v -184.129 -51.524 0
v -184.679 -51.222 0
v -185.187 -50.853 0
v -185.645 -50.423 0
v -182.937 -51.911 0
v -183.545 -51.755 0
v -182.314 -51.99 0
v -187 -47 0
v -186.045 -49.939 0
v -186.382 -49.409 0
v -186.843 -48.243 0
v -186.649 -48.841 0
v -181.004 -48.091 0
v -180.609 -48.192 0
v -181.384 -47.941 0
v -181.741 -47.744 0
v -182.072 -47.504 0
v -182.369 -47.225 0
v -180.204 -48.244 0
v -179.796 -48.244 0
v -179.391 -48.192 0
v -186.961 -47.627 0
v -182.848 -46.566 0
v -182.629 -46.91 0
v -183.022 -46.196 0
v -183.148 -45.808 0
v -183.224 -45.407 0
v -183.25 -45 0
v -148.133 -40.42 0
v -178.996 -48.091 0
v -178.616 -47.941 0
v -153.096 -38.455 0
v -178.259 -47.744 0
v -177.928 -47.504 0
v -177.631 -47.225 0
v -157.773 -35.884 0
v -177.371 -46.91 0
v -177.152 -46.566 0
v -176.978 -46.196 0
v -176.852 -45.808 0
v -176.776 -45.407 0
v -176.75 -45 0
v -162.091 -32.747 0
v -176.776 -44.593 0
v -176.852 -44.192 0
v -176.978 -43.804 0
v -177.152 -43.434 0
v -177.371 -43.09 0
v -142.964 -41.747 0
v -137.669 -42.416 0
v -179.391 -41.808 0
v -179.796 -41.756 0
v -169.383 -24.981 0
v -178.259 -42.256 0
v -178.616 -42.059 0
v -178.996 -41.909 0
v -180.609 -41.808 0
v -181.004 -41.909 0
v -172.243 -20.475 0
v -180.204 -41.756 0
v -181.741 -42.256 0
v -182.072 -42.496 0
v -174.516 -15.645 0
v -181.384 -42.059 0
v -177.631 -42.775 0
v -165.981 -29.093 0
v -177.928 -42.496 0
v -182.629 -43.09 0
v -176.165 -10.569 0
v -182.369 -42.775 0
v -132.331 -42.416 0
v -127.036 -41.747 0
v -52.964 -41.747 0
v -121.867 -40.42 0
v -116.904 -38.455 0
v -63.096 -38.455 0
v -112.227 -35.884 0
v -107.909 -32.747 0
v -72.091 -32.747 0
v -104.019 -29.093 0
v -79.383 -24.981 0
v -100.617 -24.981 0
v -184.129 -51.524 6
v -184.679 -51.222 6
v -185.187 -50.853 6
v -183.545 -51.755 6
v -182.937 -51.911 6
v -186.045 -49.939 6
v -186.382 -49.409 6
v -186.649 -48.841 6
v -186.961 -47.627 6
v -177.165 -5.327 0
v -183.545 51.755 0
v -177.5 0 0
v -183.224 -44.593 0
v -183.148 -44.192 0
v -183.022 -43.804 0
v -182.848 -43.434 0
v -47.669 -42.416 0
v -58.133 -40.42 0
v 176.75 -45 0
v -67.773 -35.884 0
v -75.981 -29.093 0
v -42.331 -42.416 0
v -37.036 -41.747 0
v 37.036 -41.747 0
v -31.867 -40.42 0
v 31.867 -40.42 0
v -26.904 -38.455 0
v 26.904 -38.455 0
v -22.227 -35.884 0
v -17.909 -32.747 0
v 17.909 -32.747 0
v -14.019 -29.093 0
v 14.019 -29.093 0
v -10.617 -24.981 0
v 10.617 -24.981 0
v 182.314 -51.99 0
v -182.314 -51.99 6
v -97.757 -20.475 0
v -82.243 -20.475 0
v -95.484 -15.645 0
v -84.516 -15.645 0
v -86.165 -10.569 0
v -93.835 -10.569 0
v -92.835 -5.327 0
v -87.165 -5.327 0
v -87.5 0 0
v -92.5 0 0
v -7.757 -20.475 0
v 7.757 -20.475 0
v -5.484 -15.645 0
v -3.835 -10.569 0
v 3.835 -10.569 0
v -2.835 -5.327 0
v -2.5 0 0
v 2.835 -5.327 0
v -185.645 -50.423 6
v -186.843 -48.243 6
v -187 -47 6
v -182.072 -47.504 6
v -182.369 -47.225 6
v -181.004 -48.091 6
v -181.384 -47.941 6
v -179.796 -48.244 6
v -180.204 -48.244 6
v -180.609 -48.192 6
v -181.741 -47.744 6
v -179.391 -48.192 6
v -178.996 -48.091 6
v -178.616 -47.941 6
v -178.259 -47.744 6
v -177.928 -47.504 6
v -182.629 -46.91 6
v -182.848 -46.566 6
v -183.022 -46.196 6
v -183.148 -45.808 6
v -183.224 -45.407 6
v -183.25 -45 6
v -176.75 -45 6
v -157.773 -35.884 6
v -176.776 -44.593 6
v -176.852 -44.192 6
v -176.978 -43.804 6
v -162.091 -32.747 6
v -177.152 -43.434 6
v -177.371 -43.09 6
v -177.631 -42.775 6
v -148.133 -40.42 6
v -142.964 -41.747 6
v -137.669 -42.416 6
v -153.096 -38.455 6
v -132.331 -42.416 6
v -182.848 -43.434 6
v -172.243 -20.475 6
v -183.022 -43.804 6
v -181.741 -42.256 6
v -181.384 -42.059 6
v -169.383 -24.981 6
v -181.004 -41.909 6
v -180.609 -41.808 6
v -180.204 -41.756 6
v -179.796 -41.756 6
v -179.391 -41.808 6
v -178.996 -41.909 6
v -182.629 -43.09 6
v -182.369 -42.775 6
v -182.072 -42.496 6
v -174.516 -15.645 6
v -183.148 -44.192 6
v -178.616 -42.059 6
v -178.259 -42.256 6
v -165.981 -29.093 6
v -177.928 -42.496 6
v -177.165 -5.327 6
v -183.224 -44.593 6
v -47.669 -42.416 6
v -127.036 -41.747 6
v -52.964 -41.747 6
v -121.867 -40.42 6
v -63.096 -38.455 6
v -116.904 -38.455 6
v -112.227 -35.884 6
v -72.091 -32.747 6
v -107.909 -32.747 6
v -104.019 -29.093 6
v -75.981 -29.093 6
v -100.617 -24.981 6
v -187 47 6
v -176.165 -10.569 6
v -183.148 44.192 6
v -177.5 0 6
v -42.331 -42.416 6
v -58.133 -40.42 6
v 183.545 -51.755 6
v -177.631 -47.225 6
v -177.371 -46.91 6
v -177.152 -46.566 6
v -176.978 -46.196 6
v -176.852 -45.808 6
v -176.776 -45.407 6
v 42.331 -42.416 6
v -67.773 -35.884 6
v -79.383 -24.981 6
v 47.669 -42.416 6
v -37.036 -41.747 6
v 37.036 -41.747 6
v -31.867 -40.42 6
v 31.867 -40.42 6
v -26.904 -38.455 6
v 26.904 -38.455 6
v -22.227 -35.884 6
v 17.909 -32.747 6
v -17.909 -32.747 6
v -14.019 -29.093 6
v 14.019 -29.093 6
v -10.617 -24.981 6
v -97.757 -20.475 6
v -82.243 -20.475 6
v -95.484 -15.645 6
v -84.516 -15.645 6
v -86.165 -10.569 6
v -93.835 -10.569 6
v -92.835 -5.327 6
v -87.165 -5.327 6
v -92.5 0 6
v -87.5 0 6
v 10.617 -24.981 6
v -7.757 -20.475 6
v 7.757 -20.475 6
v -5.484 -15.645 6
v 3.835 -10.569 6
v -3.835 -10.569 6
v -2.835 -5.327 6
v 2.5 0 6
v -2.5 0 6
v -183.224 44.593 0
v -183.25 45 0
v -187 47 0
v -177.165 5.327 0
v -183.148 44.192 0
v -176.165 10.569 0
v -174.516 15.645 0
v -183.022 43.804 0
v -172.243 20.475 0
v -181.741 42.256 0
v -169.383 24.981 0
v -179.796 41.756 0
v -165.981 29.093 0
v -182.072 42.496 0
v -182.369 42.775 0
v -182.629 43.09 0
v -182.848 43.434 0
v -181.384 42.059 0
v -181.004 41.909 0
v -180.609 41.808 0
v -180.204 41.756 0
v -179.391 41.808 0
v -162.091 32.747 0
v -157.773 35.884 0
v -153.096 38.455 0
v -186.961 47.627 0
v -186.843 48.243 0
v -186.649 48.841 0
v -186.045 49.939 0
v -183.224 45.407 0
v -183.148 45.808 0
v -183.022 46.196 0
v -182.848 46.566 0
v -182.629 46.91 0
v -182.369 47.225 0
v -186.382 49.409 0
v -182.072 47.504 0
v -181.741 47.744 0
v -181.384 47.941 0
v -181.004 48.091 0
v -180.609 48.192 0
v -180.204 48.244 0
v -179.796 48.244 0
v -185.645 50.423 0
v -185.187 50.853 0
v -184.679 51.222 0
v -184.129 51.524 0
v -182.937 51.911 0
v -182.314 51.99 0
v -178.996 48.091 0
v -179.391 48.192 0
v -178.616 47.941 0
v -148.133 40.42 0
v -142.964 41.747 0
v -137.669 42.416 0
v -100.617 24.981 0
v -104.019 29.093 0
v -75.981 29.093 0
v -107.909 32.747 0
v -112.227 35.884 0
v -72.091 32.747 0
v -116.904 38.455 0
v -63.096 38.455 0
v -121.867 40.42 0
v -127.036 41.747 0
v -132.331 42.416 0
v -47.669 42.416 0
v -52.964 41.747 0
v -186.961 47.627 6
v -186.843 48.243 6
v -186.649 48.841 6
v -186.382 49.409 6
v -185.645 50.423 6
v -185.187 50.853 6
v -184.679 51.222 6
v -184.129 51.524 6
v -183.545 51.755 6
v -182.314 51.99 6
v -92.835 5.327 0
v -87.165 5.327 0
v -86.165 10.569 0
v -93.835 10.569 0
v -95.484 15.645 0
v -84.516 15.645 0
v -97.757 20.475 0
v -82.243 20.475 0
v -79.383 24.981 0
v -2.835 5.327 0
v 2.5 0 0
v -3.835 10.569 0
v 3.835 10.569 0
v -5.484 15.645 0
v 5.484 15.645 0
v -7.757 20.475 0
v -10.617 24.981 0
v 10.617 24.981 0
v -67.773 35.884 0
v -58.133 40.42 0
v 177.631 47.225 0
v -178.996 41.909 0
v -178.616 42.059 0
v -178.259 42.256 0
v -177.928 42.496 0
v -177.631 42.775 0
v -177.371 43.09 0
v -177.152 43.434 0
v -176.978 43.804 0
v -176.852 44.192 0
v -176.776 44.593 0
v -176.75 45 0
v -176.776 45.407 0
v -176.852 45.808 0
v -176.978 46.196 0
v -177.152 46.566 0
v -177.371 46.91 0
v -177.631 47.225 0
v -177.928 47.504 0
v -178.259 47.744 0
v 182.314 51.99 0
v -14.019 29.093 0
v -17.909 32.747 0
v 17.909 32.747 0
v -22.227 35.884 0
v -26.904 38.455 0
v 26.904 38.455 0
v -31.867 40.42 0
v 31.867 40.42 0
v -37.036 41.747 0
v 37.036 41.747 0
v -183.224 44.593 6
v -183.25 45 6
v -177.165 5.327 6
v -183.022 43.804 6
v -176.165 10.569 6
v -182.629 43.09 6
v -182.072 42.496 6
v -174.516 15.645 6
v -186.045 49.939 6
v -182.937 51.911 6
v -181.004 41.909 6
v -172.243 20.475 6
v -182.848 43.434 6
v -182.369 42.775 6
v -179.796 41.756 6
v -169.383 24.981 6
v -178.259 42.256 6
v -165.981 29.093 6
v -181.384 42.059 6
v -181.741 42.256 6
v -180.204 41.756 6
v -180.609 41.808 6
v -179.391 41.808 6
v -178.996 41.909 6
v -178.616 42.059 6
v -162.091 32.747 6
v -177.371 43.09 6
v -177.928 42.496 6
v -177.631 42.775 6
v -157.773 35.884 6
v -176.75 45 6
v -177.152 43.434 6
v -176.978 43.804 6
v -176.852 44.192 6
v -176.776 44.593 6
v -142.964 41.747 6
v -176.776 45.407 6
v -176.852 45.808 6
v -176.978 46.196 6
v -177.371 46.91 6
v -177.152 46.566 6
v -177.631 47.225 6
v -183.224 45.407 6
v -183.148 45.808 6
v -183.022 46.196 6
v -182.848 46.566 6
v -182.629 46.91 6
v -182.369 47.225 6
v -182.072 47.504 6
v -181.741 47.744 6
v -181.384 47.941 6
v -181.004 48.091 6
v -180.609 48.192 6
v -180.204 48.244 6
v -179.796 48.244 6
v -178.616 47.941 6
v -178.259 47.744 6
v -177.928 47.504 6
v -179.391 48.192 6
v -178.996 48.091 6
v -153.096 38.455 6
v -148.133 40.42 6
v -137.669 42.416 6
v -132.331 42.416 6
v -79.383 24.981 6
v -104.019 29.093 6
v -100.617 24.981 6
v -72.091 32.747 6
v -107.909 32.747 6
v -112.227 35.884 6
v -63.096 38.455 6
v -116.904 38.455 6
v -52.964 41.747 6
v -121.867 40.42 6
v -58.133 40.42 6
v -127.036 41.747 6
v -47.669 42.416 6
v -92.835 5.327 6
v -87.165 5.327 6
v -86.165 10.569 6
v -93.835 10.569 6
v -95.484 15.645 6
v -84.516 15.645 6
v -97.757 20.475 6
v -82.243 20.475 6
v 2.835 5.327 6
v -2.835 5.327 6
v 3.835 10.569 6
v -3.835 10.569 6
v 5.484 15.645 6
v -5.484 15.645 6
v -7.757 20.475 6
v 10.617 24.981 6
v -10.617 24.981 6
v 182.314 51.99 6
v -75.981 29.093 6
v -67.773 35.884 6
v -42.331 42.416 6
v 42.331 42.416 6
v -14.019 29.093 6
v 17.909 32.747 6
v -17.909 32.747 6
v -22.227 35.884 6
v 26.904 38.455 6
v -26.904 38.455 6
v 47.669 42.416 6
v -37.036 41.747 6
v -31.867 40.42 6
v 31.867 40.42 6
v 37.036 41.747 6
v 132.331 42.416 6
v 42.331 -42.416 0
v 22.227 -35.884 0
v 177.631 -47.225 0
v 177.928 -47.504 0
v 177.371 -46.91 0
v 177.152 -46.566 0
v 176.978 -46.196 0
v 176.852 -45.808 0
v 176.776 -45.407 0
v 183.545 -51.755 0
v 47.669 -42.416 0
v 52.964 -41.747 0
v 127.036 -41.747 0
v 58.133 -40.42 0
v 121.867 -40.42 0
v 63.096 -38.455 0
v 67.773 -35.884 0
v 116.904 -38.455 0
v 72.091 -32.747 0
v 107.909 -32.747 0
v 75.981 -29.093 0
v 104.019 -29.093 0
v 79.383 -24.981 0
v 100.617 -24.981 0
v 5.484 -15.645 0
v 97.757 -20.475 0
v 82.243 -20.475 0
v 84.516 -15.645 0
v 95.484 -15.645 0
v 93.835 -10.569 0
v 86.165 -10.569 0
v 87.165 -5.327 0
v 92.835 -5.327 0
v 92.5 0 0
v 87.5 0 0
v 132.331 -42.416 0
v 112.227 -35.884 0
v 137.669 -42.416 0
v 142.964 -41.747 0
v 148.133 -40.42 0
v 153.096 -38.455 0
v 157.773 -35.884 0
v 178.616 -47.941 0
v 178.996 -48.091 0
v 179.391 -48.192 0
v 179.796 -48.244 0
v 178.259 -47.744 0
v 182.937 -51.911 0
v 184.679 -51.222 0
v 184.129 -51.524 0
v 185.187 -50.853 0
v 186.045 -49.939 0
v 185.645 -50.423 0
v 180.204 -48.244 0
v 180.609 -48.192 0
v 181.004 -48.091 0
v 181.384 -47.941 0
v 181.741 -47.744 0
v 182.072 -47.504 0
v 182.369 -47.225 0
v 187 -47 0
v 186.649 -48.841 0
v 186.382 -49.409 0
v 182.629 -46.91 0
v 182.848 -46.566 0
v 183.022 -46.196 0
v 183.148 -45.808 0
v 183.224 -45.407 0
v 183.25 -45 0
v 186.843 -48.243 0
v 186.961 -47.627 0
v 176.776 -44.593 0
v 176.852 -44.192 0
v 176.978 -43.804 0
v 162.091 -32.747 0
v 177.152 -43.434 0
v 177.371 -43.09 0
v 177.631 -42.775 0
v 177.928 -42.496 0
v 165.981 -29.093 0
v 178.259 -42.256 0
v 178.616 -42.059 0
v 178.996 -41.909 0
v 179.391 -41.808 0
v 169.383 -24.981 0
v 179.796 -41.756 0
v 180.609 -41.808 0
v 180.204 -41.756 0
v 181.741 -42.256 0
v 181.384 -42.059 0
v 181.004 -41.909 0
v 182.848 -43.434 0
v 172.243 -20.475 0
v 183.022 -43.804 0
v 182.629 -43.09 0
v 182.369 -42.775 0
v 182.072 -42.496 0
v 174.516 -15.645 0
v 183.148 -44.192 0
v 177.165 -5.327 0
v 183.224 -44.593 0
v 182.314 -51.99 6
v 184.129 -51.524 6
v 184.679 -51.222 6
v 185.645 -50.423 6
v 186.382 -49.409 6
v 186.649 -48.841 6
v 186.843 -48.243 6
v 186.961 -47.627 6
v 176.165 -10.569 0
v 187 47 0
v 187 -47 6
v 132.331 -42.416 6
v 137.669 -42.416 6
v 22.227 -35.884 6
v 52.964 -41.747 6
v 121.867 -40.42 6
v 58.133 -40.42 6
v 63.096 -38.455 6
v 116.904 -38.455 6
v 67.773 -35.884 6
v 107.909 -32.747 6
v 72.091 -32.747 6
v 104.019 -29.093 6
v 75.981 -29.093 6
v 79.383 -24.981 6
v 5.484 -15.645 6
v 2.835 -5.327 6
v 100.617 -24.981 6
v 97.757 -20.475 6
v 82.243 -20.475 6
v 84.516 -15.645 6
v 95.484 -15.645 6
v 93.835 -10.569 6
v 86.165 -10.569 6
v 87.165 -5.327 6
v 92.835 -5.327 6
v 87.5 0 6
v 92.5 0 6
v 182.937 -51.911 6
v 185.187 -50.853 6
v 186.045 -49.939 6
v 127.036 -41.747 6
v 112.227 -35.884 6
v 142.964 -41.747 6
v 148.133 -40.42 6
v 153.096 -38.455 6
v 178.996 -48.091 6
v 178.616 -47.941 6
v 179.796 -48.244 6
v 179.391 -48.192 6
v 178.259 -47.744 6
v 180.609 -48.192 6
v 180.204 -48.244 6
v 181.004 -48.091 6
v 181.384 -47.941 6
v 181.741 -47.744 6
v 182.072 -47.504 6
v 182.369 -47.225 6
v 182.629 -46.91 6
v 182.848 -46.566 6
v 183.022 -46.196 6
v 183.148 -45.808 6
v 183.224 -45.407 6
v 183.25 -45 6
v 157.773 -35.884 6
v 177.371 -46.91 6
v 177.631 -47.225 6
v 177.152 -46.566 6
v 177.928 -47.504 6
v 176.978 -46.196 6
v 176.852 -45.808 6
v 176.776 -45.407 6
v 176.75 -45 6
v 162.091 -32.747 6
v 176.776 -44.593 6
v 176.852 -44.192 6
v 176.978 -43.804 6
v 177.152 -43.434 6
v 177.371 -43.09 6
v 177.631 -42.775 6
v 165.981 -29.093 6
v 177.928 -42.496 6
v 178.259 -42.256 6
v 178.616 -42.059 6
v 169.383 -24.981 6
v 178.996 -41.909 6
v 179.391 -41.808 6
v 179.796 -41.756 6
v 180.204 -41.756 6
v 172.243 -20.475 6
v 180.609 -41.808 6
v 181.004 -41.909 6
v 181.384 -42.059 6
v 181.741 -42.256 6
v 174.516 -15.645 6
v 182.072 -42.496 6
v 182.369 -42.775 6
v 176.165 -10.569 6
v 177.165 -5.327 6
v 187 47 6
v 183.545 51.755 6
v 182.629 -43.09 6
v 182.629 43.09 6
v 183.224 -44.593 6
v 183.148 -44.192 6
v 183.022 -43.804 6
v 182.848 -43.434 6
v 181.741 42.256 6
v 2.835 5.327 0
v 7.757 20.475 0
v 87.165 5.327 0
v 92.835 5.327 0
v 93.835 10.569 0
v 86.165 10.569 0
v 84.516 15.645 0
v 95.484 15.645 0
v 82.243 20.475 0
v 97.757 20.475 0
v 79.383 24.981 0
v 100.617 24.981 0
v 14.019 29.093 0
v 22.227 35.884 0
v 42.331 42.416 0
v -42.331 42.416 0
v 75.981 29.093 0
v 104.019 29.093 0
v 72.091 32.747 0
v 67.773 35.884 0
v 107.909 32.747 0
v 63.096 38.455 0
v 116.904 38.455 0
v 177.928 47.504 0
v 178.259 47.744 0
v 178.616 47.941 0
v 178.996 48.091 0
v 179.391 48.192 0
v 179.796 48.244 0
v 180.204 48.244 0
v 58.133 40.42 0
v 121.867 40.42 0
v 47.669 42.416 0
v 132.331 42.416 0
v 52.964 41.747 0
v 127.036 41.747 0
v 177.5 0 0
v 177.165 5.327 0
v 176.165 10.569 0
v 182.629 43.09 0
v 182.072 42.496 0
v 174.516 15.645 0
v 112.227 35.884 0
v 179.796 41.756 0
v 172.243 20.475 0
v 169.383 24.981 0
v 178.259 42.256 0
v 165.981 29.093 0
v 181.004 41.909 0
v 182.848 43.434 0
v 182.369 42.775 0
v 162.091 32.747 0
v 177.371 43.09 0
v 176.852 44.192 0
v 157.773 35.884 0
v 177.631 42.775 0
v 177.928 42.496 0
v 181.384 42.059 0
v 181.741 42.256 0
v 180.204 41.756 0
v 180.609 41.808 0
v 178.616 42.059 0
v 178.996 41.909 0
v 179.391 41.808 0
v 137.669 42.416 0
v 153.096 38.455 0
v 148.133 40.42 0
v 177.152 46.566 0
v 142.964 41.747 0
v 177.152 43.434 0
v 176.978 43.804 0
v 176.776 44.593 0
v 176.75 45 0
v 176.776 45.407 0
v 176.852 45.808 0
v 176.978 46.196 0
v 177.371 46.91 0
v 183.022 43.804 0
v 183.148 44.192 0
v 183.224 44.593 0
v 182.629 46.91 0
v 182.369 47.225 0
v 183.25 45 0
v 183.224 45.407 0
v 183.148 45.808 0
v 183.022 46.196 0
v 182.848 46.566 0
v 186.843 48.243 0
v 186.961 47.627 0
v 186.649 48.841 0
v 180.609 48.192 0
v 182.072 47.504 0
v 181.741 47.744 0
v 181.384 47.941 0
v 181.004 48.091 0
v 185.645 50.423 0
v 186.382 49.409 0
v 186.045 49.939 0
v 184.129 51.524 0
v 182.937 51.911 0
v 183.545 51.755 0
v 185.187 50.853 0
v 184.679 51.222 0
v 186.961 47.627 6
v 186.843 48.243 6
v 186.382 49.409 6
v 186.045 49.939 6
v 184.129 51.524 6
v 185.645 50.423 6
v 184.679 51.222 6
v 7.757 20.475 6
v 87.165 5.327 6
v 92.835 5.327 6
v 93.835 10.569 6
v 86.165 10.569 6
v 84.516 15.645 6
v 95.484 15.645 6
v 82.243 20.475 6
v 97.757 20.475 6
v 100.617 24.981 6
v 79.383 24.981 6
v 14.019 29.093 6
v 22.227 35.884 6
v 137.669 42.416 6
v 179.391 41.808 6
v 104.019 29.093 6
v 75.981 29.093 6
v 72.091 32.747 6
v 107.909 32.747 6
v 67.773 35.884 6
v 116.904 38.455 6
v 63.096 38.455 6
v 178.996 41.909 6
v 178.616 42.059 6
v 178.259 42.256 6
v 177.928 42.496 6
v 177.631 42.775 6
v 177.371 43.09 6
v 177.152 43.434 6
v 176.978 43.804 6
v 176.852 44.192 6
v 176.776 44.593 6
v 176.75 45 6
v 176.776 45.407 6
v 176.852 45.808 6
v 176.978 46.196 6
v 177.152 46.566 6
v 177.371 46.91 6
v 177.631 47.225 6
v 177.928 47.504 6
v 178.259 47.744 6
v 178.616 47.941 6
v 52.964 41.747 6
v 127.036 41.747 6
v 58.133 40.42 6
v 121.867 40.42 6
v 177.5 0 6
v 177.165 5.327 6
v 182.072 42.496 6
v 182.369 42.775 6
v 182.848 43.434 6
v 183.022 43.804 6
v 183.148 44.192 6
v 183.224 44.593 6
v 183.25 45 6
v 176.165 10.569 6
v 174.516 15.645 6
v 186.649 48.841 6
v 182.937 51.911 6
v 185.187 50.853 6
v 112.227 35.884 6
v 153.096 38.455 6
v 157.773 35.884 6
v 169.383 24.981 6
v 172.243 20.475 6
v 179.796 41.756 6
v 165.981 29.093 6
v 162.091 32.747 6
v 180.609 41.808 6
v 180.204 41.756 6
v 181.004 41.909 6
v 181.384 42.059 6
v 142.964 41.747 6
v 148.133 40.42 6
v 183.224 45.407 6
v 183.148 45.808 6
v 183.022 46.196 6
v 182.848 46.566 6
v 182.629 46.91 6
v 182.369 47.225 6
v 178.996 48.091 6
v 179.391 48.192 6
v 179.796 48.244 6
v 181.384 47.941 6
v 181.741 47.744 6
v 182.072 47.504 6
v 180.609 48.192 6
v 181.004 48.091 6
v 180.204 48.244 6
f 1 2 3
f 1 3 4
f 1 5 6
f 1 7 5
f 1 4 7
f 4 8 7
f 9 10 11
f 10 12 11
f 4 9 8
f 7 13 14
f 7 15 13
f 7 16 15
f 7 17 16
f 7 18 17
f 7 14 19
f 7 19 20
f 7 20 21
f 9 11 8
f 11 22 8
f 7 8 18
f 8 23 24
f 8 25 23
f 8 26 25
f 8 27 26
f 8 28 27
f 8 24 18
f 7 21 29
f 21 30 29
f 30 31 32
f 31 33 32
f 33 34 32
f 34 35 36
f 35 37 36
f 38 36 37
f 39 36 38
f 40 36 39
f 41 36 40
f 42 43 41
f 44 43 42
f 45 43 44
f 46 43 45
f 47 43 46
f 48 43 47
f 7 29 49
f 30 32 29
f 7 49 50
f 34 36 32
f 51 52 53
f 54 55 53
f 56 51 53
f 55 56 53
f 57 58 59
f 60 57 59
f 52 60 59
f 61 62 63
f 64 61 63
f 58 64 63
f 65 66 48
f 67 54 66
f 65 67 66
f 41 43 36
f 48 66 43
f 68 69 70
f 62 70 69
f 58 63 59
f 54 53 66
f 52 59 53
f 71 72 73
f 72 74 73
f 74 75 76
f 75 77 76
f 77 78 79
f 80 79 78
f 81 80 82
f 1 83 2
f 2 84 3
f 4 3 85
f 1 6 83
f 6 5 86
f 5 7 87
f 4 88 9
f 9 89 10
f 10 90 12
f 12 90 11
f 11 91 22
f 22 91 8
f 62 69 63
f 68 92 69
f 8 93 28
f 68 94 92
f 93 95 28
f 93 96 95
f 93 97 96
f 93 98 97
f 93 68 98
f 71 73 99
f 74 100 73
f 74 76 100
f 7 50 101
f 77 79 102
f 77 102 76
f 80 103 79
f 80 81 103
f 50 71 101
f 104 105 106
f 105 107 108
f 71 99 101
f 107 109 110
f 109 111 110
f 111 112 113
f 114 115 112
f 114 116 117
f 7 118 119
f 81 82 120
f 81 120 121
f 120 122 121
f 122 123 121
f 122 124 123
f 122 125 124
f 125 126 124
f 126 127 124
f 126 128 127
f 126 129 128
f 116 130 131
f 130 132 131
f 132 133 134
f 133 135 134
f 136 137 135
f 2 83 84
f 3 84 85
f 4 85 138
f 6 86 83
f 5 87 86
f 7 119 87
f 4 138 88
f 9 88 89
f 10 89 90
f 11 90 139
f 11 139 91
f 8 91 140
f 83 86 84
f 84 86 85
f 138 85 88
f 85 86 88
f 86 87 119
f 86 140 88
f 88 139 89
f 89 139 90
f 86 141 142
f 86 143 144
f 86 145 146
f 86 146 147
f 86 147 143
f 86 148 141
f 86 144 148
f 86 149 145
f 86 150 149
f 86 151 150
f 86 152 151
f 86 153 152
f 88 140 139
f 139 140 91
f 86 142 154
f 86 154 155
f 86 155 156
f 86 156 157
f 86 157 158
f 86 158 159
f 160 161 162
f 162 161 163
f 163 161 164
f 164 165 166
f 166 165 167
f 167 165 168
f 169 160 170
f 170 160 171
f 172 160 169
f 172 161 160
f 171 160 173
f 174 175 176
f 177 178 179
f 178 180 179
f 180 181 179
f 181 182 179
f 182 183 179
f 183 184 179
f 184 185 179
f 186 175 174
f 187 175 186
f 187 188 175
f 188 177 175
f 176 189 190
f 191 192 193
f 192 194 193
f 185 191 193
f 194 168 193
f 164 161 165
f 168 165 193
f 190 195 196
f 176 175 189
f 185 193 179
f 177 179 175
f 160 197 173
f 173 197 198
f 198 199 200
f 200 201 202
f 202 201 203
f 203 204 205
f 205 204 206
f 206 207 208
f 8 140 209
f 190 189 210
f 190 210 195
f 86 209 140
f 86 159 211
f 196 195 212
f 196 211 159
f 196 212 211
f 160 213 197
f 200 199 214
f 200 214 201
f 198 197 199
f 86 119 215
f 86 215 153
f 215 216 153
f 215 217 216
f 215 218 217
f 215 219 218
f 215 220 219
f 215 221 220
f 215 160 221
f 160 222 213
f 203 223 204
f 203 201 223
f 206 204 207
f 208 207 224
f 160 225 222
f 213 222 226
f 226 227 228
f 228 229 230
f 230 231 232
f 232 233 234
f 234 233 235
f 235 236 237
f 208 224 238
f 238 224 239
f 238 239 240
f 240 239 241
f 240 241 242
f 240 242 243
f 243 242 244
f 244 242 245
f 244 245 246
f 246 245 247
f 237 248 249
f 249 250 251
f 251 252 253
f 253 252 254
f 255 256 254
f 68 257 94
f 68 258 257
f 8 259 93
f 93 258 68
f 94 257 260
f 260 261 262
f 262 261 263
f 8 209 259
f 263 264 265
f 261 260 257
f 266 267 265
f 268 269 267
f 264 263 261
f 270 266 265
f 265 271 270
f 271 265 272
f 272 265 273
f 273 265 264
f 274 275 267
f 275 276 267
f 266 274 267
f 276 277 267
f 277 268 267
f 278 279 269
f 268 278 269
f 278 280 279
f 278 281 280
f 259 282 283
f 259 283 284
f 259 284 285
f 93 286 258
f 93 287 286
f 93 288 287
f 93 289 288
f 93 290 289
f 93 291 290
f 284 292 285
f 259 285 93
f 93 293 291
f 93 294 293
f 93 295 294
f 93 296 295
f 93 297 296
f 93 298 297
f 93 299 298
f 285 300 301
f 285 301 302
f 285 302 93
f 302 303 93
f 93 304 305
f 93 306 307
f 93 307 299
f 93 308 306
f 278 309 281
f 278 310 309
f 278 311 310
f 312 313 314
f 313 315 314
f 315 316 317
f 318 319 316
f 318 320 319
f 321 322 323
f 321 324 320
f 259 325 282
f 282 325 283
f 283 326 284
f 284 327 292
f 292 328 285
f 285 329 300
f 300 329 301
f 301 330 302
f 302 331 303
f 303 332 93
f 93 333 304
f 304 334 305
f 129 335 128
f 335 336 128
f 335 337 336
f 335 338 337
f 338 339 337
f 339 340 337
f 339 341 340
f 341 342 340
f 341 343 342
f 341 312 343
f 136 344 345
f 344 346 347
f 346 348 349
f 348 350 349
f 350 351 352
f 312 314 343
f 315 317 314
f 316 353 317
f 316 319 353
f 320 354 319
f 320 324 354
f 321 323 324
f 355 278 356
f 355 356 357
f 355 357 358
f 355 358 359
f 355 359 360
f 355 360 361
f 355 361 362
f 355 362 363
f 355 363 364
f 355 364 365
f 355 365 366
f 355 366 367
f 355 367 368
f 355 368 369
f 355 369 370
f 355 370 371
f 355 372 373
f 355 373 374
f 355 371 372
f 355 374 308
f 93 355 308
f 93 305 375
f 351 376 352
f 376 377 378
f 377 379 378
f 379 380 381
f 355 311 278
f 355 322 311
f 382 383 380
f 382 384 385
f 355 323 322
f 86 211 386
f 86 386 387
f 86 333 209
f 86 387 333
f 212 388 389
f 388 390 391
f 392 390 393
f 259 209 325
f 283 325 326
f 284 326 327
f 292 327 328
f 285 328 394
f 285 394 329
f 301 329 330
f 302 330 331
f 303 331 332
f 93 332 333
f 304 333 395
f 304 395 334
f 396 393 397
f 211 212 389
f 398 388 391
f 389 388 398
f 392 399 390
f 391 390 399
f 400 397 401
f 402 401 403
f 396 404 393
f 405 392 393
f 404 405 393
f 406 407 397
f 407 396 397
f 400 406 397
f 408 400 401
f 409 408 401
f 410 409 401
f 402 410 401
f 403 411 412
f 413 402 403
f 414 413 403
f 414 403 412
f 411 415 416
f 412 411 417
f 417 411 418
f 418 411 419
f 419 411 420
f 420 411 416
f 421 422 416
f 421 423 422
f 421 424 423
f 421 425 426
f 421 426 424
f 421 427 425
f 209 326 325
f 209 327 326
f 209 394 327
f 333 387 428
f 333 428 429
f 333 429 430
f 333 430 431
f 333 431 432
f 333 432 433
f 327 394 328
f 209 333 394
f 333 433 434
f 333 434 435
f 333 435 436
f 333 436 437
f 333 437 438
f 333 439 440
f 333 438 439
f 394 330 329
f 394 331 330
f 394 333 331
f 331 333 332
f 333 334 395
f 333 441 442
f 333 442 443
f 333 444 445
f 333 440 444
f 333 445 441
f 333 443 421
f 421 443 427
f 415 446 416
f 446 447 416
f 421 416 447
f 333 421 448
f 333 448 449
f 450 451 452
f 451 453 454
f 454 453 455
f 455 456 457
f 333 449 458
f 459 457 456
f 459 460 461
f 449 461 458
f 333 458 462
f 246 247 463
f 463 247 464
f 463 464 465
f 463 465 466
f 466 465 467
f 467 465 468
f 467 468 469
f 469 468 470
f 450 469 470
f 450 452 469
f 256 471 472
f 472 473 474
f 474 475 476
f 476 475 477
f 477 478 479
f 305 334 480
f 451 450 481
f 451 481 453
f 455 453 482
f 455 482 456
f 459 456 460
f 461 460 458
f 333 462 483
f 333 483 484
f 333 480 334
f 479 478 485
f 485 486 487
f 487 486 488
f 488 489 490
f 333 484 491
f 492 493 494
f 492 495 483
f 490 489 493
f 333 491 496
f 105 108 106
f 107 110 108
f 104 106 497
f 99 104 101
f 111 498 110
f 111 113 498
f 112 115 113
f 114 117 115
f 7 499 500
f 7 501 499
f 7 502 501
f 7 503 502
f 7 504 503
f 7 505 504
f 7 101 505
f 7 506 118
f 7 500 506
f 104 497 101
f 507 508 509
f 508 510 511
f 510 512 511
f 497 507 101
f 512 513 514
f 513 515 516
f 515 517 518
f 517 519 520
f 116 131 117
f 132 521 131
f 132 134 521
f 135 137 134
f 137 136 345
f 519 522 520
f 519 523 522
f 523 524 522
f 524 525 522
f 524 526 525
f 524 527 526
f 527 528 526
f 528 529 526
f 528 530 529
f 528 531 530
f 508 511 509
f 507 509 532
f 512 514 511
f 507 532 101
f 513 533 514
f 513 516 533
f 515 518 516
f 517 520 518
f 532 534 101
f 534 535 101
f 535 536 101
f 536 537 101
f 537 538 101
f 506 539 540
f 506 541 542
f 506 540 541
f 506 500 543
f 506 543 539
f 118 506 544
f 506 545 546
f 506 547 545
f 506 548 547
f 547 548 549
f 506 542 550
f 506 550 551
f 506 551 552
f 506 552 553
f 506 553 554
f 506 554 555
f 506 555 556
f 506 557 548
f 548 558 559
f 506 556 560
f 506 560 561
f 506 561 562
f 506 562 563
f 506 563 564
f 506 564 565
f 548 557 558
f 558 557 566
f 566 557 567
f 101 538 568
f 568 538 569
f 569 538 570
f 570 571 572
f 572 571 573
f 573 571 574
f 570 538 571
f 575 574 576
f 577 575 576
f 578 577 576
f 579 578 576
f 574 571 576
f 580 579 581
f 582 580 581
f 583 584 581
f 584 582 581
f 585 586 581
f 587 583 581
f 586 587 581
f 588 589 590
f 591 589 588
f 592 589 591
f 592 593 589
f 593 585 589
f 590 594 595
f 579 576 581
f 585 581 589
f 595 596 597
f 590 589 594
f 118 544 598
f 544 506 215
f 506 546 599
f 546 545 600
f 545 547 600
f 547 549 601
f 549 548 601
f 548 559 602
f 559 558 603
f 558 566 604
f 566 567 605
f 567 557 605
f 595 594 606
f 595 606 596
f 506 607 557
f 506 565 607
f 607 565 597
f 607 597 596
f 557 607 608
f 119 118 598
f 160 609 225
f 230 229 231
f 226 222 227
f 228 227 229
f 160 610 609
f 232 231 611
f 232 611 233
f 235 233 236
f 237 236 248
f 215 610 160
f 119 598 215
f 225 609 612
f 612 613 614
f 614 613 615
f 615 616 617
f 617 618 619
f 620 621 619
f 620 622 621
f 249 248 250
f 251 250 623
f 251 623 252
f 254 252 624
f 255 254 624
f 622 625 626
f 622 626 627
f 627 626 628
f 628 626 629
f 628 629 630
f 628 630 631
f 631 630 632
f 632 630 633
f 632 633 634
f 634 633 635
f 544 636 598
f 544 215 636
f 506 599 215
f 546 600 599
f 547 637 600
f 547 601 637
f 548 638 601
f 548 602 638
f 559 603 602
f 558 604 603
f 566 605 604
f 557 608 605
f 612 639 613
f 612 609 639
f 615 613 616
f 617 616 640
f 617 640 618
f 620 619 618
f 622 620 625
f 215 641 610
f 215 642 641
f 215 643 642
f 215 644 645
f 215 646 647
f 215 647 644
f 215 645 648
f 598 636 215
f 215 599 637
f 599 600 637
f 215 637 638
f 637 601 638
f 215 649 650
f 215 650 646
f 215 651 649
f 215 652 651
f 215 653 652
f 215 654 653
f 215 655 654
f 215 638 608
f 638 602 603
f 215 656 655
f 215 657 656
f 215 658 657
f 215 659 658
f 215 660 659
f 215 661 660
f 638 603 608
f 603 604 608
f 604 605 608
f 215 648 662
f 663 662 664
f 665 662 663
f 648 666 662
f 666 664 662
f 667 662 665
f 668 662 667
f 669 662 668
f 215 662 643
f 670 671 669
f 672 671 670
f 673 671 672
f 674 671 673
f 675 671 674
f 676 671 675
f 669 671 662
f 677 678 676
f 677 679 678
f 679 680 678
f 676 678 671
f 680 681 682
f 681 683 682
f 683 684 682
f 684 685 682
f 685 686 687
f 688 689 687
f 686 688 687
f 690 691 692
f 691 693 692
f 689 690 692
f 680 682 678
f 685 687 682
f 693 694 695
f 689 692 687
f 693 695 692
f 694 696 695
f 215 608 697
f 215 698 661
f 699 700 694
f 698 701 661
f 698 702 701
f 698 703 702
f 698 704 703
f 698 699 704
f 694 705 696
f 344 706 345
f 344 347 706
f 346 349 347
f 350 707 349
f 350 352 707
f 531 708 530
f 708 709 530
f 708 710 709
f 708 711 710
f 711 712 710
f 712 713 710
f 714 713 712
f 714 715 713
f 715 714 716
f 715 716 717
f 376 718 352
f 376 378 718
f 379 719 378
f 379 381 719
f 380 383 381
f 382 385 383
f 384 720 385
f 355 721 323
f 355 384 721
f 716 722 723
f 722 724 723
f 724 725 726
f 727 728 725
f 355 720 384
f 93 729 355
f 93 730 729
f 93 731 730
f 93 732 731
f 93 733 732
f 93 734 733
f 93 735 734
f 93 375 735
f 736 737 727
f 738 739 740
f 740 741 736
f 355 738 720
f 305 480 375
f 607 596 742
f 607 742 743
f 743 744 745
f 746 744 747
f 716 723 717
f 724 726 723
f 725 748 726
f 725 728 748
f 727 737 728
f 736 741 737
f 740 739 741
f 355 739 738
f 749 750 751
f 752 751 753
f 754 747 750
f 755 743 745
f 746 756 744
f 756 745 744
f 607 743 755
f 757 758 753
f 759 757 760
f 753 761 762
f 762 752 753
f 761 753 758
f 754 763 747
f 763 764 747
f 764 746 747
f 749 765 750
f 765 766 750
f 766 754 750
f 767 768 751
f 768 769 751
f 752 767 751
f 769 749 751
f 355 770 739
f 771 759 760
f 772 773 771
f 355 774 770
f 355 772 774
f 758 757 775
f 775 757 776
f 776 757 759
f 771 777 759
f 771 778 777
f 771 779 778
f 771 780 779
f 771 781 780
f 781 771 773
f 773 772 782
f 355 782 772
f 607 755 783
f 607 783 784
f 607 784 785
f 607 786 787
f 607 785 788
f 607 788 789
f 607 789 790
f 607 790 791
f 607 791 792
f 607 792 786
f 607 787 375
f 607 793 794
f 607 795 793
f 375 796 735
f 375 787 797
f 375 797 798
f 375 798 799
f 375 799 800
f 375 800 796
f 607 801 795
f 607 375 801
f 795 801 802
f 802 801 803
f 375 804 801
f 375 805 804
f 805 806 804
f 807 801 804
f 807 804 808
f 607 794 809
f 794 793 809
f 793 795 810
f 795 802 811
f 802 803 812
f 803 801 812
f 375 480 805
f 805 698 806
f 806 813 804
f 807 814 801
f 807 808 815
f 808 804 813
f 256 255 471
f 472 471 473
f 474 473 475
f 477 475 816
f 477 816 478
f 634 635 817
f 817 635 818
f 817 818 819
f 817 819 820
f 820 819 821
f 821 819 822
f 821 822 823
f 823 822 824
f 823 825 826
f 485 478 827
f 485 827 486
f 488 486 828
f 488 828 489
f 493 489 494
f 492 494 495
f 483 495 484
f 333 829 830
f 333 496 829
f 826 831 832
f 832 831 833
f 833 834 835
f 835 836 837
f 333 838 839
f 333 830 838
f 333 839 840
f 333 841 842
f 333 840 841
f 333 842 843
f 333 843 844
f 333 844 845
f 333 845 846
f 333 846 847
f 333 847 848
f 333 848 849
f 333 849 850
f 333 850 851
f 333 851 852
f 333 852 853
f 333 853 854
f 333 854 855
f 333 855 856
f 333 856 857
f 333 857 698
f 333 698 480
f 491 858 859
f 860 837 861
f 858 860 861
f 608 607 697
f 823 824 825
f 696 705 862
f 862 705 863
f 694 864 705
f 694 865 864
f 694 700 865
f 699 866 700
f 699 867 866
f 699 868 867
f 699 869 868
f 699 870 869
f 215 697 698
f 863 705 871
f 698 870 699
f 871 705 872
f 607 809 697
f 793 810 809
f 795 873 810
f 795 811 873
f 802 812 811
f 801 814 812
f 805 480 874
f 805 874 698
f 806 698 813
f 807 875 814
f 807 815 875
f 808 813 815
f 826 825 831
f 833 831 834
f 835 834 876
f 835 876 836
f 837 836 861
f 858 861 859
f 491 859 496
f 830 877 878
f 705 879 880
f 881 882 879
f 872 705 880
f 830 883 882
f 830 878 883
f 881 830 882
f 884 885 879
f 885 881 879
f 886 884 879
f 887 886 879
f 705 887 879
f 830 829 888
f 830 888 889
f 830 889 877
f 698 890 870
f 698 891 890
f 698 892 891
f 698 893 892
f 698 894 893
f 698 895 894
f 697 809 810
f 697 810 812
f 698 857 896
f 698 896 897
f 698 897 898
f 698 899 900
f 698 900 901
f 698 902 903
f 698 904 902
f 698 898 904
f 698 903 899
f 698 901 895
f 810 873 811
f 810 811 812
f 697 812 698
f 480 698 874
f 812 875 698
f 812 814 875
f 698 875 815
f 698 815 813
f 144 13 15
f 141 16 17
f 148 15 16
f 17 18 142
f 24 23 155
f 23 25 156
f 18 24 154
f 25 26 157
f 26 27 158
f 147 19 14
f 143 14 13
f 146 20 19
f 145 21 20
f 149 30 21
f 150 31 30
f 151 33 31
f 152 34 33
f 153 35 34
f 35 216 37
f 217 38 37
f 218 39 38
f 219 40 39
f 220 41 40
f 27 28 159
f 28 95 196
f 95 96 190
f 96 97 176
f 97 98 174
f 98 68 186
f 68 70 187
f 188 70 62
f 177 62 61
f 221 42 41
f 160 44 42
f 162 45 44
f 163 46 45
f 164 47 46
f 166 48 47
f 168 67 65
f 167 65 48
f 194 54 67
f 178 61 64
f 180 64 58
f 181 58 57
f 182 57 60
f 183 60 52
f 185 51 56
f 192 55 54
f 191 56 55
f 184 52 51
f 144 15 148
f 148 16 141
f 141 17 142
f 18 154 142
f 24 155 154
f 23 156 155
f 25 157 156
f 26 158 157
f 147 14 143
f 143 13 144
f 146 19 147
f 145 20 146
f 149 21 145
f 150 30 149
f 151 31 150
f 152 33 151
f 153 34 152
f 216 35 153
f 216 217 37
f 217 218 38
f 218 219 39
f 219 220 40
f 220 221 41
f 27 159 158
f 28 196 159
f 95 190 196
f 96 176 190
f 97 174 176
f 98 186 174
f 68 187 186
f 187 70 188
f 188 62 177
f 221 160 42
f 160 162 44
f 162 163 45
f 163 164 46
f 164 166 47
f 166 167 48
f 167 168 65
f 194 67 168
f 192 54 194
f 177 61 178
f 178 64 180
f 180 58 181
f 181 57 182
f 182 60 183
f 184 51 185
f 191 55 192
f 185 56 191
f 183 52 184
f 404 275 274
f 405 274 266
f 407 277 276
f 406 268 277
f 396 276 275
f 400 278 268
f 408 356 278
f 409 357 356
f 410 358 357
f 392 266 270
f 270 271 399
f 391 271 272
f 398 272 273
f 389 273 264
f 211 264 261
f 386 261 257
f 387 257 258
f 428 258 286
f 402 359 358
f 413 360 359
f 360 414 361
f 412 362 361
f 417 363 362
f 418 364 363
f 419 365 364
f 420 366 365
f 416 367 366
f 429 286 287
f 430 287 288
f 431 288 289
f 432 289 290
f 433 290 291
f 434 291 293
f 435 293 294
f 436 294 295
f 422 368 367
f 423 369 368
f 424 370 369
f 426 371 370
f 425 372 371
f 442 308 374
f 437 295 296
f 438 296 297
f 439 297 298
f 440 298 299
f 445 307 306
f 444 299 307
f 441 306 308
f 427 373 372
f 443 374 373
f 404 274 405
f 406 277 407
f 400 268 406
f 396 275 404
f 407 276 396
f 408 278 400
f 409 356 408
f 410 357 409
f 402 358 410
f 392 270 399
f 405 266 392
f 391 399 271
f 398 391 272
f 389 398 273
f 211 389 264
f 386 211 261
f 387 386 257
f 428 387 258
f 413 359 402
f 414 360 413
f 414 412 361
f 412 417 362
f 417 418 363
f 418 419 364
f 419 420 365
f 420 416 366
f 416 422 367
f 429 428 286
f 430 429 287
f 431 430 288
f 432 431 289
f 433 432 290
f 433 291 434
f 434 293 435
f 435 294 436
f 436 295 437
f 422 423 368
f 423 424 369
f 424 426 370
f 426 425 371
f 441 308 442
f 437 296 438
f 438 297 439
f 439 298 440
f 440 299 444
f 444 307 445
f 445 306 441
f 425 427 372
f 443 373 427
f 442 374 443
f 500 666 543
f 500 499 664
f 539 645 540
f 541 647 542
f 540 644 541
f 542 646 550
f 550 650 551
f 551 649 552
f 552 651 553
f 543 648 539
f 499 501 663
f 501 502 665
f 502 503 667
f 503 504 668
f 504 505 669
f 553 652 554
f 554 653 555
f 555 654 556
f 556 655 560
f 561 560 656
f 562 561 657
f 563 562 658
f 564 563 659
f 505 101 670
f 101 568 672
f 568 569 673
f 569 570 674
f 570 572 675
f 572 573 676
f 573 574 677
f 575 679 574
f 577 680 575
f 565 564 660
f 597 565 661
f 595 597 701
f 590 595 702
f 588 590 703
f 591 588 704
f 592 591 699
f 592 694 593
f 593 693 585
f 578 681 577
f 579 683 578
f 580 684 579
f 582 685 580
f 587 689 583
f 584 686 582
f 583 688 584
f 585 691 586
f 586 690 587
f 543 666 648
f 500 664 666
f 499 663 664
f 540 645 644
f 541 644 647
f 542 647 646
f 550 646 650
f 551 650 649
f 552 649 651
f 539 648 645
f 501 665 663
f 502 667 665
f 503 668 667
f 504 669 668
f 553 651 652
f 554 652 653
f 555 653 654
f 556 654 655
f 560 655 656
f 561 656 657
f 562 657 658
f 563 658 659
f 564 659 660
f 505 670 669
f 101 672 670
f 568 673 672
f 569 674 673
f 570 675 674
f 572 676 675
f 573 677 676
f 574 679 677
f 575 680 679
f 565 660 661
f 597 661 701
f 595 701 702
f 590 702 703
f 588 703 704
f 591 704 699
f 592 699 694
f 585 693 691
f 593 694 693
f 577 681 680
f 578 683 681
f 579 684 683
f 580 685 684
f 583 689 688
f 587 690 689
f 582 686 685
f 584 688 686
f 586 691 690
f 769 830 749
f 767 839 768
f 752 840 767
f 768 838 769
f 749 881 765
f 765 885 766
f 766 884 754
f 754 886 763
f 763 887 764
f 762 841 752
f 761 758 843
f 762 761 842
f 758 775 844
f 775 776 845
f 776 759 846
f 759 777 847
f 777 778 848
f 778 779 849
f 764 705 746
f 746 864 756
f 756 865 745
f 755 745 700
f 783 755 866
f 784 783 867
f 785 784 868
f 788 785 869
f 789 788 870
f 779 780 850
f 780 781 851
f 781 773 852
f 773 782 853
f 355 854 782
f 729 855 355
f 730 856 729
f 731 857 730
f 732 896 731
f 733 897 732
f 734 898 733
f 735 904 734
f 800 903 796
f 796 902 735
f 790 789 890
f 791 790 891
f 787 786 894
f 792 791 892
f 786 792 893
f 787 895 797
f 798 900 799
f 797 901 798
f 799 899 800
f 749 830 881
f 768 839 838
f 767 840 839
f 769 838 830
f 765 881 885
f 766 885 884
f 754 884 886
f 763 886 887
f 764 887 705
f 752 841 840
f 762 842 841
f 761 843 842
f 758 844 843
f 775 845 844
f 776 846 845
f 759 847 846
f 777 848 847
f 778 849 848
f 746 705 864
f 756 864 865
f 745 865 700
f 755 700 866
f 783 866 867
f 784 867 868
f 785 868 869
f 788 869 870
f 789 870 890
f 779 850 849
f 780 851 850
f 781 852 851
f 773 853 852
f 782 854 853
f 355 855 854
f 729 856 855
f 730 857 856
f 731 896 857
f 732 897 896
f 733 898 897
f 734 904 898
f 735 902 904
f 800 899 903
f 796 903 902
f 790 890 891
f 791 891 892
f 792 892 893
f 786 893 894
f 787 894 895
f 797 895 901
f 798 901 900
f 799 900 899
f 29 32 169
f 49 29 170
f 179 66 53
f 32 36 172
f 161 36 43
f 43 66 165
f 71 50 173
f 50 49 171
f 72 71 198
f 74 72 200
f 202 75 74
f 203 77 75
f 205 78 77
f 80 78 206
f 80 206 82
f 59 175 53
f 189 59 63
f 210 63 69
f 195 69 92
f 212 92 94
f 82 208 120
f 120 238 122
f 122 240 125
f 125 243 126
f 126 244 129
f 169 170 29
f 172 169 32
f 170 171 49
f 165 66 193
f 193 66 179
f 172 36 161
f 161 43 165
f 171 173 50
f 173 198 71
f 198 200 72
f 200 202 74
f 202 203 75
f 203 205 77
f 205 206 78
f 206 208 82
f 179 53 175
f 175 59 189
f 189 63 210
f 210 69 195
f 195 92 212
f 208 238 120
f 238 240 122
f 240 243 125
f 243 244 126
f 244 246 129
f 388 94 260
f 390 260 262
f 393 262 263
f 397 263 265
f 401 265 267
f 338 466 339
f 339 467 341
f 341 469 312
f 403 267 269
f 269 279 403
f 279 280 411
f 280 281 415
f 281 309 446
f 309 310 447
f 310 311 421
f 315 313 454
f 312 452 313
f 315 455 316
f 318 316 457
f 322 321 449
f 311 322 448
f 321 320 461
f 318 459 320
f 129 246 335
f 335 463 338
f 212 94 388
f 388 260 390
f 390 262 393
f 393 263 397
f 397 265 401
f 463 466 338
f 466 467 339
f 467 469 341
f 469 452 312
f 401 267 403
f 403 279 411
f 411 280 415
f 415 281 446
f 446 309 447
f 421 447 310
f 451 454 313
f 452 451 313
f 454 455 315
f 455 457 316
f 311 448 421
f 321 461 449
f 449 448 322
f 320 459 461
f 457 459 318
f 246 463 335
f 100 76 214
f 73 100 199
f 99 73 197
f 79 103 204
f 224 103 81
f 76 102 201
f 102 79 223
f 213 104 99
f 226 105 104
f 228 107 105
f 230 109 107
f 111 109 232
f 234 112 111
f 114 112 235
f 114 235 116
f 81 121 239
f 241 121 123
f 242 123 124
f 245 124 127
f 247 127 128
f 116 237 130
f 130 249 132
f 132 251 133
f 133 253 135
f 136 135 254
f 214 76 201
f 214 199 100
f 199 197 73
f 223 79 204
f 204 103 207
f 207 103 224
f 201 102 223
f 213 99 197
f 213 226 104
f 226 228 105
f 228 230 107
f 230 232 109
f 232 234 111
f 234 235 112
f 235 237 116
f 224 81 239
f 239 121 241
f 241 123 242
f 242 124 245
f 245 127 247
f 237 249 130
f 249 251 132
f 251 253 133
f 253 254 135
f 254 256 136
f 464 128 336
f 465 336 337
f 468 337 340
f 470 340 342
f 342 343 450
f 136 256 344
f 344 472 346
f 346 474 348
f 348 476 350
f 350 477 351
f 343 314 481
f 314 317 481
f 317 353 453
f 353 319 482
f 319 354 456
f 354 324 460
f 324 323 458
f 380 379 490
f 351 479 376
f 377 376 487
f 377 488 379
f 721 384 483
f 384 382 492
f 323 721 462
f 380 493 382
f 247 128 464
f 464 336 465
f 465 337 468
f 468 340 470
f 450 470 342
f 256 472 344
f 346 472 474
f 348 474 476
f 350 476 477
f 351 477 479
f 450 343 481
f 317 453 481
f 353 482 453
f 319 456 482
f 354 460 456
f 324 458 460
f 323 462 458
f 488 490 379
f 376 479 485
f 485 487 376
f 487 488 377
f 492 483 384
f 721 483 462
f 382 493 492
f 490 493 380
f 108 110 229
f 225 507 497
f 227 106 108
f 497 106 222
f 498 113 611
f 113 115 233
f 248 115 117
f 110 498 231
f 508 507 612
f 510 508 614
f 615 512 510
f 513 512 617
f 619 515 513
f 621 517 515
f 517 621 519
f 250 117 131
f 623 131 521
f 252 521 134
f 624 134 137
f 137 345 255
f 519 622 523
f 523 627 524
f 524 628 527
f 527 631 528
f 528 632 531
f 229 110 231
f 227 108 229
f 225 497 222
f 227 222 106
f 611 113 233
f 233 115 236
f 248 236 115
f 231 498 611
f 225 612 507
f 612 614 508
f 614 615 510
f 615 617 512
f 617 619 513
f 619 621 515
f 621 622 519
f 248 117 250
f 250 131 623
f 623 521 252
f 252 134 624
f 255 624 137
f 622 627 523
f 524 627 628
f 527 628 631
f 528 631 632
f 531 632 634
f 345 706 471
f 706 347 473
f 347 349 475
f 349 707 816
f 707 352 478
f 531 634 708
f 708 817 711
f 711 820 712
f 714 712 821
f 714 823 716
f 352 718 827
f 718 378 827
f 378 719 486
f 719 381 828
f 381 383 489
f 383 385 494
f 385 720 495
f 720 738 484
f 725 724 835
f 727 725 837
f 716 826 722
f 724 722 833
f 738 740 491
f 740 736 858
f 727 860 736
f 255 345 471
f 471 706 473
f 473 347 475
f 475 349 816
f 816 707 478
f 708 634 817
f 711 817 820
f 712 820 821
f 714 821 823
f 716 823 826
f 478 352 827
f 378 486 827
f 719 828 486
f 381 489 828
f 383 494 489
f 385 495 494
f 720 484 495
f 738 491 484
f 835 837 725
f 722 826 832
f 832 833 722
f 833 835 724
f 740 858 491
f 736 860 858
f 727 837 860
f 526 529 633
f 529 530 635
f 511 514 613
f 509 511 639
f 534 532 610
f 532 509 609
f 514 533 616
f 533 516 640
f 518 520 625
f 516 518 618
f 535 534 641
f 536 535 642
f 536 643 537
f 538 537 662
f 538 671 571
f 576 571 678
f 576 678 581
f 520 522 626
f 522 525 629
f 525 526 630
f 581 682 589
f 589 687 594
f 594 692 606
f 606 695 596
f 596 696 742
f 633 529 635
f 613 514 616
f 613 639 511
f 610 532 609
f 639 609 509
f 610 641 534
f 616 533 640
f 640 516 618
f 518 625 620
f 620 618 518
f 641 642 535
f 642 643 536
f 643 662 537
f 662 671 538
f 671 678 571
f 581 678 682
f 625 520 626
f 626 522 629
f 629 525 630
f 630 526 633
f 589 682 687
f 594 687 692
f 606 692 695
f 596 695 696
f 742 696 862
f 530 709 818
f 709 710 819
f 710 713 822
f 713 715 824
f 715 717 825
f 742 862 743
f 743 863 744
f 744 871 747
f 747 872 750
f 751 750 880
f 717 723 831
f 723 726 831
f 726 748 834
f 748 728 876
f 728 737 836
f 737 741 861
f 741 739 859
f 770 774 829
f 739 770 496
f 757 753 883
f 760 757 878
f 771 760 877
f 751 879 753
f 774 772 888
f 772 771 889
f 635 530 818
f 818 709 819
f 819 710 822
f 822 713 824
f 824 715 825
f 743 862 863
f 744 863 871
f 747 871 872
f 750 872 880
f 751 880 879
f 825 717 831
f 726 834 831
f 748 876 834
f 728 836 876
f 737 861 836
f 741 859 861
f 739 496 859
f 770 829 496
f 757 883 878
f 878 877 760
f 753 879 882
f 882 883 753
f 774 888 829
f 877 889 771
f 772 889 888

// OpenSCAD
$fn = 50;

difference() {
	union() {
		hull() {
			translate(v = [-182.0, 47.0, 0]) {
				cylinder(h = 6, r = 5);
			}
			translate(v = [182.0, 47.0, 0]) {
				cylinder(h = 6, r = 5);
			}
			translate(v = [-182.0, -47.0, 0]) {
				cylinder(h = 6, r = 5);
			}
			translate(v = [182.0, -47.0, 0]) {
				cylinder(h = 6, r = 5);
			}
		}
	}
	union() {
		translate(v = [-180.0, -45.0, -100.0]) {
			cylinder(h = 200, r = 3.25);
		}
		translate(v = [-180.0, 45.0, -100.0]) {
			cylinder(h = 200, r = 3.25);
		}
		translate(v = [180.0, -45.0, -100.0]) {
			cylinder(h = 200, r = 3.25);
		}
		translate(v = [180.0, 45.0, -100.0]) {
			cylinder(h = 200, r = 3.25);
		}
		translate(v = [-180.0, -45.0, -100.0]) {
			cylinder(h = 200, r = 1.8);
		}
		translate(v = [-180.0, 45.0, -100.0]) {
			cylinder(h = 200, r = 1.8);
		}
		translate(v = [180.0, -45.0, -100.0]) {
			cylinder(h = 200, r = 1.8);
		}
		translate(v = [180.0, 45.0, -100.0]) {
			cylinder(h = 200, r = 1.8);
		}
		translate(v = [-135.0, 0, 0.0]) {
			cylinder(h = 6, r = 42.5);
		}
		translate(v = [-45.0, 0, 0.0]) {
			cylinder(h = 6, r = 42.5);
		}
		translate(v = [45.0, 0, 0.0]) {
			cylinder(h = 6, r = 42.5);
		}
		translate(v = [135.0, 0, 0.0]) {
			cylinder(h = 6, r = 42.5);
		}
	}
}
